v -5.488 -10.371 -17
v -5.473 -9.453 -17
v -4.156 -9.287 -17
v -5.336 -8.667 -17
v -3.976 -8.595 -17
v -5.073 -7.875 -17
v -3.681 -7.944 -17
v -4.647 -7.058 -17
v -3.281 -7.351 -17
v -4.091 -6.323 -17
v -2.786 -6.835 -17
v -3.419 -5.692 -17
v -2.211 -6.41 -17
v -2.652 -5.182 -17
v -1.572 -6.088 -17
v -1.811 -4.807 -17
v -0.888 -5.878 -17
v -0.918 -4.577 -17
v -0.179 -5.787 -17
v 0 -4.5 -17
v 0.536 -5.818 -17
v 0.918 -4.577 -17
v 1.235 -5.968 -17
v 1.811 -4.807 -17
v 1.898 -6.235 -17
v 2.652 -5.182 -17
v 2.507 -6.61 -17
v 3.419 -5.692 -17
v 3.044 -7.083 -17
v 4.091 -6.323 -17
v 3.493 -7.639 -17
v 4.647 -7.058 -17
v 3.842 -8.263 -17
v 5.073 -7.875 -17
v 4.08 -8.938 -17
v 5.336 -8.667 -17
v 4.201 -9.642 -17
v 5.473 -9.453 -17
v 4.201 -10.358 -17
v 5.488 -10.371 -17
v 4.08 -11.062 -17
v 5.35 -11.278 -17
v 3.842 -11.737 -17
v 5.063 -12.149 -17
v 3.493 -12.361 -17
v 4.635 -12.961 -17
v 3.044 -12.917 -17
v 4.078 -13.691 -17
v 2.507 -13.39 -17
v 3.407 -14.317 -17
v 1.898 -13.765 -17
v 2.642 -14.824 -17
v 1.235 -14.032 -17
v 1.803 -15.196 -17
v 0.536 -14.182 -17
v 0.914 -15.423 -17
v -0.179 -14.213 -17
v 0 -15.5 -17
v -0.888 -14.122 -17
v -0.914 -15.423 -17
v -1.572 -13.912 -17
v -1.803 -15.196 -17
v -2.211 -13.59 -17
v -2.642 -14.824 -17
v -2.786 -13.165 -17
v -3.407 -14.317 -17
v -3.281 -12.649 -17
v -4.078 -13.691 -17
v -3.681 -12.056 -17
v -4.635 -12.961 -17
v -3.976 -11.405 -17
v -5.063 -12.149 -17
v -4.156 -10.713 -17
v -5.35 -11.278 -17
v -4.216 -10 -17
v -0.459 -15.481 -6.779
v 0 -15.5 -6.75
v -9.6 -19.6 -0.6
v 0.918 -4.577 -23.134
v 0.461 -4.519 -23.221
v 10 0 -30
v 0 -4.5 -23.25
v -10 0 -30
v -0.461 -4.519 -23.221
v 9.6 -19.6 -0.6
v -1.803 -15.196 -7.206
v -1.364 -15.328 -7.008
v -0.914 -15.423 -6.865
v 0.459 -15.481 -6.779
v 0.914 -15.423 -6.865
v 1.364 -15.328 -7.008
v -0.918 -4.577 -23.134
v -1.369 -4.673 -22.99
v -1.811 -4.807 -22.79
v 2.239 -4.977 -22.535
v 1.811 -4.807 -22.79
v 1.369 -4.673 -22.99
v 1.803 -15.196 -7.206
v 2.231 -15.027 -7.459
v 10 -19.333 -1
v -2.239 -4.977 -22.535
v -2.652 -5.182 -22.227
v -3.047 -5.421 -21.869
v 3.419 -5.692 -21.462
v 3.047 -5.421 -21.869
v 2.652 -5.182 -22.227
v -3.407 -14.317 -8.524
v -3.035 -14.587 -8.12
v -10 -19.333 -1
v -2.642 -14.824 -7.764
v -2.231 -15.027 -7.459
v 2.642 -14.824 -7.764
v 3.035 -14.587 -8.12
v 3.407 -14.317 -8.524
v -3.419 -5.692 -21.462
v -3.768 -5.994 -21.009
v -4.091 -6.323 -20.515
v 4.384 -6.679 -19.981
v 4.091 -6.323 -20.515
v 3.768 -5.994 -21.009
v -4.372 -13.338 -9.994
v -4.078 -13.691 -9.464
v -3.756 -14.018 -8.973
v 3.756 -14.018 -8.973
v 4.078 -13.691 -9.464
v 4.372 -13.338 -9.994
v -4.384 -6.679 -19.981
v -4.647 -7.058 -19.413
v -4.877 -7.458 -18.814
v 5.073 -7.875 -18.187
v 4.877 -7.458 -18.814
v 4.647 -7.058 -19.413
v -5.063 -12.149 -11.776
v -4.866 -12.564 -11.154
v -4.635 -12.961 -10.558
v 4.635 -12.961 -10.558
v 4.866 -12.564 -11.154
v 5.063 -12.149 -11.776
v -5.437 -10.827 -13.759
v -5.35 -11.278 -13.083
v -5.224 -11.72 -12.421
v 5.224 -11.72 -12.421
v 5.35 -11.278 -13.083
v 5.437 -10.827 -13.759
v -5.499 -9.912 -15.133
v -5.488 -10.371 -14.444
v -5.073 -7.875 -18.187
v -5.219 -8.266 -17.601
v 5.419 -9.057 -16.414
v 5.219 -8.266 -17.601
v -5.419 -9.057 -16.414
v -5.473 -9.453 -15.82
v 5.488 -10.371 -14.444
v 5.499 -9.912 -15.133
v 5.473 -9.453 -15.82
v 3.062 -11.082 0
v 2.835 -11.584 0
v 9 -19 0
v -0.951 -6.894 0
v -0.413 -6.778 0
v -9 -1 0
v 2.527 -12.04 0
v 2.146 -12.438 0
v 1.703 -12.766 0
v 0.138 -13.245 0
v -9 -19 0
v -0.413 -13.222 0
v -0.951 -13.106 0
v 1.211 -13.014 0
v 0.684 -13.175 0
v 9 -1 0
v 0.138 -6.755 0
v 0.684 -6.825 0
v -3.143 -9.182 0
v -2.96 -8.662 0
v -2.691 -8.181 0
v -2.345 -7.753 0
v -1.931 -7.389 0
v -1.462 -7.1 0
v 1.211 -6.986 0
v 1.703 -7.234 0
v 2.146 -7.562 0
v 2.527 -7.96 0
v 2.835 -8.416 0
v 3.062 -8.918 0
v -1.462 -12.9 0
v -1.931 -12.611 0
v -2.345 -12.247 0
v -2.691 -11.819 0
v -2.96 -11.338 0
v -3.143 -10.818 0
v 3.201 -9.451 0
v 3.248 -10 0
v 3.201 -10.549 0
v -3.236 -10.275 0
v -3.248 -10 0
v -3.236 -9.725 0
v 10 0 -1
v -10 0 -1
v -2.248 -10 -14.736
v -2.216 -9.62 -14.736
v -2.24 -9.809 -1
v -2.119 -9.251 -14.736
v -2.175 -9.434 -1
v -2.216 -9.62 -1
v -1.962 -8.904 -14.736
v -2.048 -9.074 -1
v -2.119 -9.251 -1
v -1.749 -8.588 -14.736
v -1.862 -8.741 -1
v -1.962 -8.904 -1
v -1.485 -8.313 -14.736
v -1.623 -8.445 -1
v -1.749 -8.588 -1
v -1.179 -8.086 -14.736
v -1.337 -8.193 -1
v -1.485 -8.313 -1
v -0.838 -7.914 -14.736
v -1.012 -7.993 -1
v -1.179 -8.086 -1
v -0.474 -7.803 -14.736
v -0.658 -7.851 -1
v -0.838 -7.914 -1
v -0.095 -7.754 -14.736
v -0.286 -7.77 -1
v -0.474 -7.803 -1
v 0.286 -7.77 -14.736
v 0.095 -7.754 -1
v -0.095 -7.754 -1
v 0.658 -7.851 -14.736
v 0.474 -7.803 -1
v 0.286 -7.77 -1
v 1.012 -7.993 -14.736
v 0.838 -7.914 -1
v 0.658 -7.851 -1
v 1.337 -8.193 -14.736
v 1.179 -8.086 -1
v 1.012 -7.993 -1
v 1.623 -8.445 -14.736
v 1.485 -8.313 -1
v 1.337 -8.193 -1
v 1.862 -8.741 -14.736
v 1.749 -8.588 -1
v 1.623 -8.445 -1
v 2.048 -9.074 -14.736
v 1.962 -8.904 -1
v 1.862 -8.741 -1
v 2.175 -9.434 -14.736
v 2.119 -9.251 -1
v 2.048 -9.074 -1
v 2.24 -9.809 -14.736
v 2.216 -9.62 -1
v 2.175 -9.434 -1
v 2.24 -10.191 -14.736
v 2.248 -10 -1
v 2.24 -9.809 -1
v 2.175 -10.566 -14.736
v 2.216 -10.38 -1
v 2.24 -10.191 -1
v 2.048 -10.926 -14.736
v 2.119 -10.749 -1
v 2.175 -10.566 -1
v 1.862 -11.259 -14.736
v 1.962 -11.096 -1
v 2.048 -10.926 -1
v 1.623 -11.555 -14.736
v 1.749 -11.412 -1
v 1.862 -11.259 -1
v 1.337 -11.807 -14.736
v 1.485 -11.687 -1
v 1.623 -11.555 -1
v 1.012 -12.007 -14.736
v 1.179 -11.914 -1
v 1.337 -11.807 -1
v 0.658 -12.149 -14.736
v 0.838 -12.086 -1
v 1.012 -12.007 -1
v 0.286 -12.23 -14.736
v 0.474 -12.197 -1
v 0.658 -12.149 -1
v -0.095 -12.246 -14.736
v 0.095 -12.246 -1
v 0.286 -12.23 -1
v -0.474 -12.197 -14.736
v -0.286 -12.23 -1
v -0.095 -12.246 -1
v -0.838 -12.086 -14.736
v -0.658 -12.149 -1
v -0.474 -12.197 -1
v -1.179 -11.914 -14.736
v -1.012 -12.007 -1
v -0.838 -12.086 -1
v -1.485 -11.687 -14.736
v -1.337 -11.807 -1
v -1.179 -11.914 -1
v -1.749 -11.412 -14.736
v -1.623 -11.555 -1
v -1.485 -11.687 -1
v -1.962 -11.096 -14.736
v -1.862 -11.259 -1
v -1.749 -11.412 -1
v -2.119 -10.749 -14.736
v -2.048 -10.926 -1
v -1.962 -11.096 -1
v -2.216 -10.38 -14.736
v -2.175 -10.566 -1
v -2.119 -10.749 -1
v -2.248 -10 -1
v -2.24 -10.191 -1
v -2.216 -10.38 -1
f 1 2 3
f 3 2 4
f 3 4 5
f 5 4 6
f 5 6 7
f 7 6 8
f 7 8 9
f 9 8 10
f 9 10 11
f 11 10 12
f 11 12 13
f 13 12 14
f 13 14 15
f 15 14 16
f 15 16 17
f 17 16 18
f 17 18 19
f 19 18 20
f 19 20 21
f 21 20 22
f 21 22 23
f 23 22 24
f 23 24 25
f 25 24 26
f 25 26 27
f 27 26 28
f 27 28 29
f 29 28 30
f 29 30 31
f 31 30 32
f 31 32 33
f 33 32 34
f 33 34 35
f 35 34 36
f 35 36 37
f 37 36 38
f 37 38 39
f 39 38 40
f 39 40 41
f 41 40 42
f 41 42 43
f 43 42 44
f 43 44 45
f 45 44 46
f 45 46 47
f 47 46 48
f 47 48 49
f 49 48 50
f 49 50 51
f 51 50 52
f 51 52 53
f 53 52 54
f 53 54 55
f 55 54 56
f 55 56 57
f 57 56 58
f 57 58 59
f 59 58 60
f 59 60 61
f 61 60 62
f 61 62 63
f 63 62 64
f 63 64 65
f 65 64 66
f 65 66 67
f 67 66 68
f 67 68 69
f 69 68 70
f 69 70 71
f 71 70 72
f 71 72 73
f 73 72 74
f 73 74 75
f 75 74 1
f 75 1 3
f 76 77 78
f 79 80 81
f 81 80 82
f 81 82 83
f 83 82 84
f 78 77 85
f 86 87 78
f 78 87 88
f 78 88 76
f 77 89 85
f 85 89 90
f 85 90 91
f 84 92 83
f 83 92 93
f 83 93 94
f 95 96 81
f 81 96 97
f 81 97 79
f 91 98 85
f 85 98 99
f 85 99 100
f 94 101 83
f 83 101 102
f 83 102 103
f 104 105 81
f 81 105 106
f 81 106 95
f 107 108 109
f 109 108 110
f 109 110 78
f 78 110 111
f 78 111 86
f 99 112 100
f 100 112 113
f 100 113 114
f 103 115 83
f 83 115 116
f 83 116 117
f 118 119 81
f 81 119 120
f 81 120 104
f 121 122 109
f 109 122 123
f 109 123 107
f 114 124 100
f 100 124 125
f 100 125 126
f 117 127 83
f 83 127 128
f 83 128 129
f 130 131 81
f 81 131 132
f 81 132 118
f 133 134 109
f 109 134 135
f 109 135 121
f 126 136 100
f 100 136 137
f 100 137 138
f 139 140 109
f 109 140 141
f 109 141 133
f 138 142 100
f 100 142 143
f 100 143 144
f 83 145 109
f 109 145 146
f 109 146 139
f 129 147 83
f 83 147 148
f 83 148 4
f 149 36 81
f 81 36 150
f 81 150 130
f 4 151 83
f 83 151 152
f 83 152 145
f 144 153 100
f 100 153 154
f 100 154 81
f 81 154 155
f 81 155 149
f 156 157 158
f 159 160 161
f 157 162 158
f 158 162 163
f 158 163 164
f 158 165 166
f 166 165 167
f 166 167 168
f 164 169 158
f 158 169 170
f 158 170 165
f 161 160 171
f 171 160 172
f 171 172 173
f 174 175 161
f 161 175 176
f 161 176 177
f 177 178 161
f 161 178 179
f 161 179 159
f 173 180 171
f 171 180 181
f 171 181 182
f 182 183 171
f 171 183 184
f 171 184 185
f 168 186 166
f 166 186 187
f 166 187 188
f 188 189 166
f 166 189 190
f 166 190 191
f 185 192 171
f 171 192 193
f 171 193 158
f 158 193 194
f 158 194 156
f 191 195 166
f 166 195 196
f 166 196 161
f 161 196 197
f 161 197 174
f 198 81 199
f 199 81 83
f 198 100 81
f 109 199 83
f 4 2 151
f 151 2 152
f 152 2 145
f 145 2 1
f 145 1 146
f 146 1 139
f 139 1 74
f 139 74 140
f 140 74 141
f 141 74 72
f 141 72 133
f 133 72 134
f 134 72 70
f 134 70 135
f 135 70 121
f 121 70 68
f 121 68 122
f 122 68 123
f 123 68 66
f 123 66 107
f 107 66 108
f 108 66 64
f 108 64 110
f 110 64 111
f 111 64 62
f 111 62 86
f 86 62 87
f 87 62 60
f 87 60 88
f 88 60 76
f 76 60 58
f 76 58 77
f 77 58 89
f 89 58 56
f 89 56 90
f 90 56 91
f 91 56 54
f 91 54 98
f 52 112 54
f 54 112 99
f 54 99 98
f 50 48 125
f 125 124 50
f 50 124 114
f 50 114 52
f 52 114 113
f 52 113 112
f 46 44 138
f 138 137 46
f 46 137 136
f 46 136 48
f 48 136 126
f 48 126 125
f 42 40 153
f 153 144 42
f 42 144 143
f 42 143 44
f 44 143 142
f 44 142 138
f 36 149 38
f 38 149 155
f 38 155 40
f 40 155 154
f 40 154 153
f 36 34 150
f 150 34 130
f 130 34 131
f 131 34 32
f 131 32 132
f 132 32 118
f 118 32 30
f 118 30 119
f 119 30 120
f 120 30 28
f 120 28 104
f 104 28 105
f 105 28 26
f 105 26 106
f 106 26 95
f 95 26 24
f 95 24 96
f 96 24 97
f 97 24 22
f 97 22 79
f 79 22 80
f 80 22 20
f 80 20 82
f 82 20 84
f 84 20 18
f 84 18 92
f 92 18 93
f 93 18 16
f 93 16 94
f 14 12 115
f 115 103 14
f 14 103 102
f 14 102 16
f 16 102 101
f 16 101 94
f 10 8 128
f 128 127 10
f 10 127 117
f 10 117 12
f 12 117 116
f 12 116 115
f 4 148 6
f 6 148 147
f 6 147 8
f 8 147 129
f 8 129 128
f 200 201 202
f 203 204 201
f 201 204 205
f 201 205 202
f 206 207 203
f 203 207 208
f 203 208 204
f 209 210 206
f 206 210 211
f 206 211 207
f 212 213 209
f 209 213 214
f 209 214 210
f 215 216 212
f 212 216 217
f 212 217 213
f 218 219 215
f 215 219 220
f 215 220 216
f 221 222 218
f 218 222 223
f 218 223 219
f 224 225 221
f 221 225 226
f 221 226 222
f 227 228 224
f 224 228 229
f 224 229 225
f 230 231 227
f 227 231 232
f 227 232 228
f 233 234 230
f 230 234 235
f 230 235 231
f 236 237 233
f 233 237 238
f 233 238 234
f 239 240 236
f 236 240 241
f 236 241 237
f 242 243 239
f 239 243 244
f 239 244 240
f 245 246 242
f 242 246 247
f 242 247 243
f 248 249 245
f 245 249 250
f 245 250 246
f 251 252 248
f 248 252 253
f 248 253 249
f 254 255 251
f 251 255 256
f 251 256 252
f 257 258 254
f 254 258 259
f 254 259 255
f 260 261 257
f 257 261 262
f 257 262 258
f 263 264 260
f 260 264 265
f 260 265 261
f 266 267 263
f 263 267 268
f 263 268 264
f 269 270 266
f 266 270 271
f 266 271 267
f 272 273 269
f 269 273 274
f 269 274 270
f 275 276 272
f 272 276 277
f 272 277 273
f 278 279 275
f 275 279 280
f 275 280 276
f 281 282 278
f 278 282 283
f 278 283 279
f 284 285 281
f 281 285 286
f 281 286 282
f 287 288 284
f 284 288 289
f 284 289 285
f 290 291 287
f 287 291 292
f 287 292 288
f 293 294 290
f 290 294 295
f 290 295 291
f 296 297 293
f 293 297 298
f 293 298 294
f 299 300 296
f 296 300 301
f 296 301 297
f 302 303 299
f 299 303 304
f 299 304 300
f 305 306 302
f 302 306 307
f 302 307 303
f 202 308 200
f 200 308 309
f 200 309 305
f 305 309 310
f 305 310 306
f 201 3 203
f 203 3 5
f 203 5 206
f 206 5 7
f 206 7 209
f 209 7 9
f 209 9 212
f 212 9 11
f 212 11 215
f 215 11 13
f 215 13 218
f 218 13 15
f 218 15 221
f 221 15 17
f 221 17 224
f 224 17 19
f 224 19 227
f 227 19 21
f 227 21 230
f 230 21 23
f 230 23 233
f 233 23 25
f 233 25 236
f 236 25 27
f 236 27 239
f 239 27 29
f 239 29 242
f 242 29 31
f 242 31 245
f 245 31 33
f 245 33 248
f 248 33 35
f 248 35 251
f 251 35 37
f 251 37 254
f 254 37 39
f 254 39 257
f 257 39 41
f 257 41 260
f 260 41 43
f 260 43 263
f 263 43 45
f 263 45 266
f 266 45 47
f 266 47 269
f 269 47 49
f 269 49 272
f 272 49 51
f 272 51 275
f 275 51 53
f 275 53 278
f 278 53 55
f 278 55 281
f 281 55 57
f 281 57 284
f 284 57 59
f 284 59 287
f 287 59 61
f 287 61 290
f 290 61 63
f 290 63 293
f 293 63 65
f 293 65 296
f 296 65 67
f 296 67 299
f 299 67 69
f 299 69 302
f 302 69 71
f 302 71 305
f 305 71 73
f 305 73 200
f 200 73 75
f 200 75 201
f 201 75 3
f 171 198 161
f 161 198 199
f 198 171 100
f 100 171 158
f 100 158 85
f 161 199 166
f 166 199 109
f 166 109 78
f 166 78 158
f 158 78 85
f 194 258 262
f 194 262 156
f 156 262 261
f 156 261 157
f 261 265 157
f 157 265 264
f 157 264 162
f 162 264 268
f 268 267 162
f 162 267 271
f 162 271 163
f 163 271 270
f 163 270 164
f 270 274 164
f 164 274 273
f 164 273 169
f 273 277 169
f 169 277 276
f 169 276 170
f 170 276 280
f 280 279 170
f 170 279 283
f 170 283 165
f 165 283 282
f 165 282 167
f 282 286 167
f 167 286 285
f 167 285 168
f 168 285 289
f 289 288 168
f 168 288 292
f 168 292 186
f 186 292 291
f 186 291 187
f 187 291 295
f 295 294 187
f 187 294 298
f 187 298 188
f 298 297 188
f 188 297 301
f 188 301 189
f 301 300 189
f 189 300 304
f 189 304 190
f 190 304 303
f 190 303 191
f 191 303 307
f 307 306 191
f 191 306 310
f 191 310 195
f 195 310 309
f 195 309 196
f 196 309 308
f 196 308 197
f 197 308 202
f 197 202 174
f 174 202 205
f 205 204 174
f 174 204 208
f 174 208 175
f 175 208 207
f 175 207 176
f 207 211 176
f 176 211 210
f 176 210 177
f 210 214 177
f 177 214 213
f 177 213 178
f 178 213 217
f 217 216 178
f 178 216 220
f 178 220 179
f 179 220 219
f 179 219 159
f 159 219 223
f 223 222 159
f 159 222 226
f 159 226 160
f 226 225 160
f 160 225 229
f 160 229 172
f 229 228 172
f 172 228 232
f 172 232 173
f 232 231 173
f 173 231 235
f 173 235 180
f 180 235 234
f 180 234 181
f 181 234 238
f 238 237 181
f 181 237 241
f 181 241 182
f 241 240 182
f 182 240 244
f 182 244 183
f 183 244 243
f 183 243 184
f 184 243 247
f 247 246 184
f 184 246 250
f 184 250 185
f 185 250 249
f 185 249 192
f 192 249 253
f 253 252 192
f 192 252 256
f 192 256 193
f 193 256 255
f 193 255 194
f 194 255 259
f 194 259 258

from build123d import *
from OCP.BRepFilletAPI import BRepFilletAPI_MakeChamfer

# Parameters (mm, degrees)
BOSS_EXTRUDE1_DEPTH                            = 10
BOSS_EXTRUDE2_REACH                            = 30.089
SKETCH2_R                                      = 5.5
CUT_EXTRUDE1_START                             = 20
SKETCH3_R                                      = 5.5
CUT_EXTRUDE1_DEPTH                             = 20
CSK_FOR_8_FLAT_HEAD_MACHINE_SCREW1_D           = 4.4958
CSK_FOR_8_FLAT_HEAD_MACHINE_SCREW1_CSINK_D     = 8.4328
CSK_FOR_8_FLAT_HEAD_MACHINE_SCREW1_CSINK_ANGLE = 82
CHAMFER1_SIZE                                  = 1
CHAMFER1_SIZE2                                 = 0.721110255


with BuildPart() as part:
    # Sketch1 → Boss-Extrude1 (new, symmetric)
    with BuildSketch(Plane(origin=(0, 0, 0), x_dir=(0, 0, -1), z_dir=(1, 0, 0))):
        Polygon((0, 0), (30, 0), (0, -20), align=None)
    extrude(amount=BOSS_EXTRUDE1_DEPTH, both=True)

    # Sketch2 → Boss-Extrude2 (add, up to next)
    with BuildSketch(Plane.XY.offset(-17), mode=Mode.PRIVATE) as boss_extrude2_sk1:
        with Locations((0, -10)):
            Circle(SKETCH2_R)
    boss_extrude2_tool1 = extrude(boss_extrude2_sk1.sketch, amount=BOSS_EXTRUDE2_REACH, mode=Mode.PRIVATE) - part.part
    add(boss_extrude2_tool1.solids().sort_by_distance((0, -10, -17))[0])

    # Sketch3 → Cut-Extrude1 (cut)
    with BuildSketch(Plane(origin=(0, 0, -17), x_dir=(-1, 0, 0), z_dir=(0, 0, -1)).offset(CUT_EXTRUDE1_START)):
        with Locations((0, -10)):
            Circle(SKETCH3_R)
    extrude(amount=-CUT_EXTRUDE1_DEPTH, mode=Mode.SUBTRACT)

    # CSK for #8 Flat Head Machine Screw1 (through all)
    with Locations(Plane(origin=(0, 0, -17), x_dir=(-1, 0, 0), z_dir=(0, 0, -1))):
        with Locations((0, -10)):
            CounterSinkHole(CSK_FOR_8_FLAT_HEAD_MACHINE_SCREW1_D / 2, CSK_FOR_8_FLAT_HEAD_MACHINE_SCREW1_CSINK_D / 2, counter_sink_angle=CSK_FOR_8_FLAT_HEAD_MACHINE_SCREW1_CSINK_ANGLE)

    # Chamfer1: one chamfer whose edges measure the first distance from different faces: ONE call of the kernel's chamfer builder (chamfer() names one face for all edges)
    chamfer1_edges_1 = [part.edges().sort_by_distance(p)[0] for p in [
        (-2.2479, -10, 0),
        (-10, -10, 0),
        (10, -10, 0),
        (0, 0, 0),
    ]]
    chamfer1_edges_2 = [part.edges().sort_by_distance(p)[0] for p in [
        (0, -20, 0),
    ]]
    chamfer1_side_2 = [part.faces().sort_by_distance(p)[0] for p in [
        (0, -19.717157288, 0),
    ]]
    chamfer1 = BRepFilletAPI_MakeChamfer(part.part.solid().wrapped)
    for e in chamfer1_edges_1:
        chamfer1.Add(CHAMFER1_SIZE, e.wrapped)
    for e in chamfer1_edges_2:
        chamfer1.Add(CHAMFER1_SIZE, CHAMFER1_SIZE2, e.wrapped, chamfer1_side_2[0].wrapped)  # the first distance lies on this face
    add(Compound.cast(chamfer1.Shape()), mode=Mode.REPLACE)


solid = part.part
